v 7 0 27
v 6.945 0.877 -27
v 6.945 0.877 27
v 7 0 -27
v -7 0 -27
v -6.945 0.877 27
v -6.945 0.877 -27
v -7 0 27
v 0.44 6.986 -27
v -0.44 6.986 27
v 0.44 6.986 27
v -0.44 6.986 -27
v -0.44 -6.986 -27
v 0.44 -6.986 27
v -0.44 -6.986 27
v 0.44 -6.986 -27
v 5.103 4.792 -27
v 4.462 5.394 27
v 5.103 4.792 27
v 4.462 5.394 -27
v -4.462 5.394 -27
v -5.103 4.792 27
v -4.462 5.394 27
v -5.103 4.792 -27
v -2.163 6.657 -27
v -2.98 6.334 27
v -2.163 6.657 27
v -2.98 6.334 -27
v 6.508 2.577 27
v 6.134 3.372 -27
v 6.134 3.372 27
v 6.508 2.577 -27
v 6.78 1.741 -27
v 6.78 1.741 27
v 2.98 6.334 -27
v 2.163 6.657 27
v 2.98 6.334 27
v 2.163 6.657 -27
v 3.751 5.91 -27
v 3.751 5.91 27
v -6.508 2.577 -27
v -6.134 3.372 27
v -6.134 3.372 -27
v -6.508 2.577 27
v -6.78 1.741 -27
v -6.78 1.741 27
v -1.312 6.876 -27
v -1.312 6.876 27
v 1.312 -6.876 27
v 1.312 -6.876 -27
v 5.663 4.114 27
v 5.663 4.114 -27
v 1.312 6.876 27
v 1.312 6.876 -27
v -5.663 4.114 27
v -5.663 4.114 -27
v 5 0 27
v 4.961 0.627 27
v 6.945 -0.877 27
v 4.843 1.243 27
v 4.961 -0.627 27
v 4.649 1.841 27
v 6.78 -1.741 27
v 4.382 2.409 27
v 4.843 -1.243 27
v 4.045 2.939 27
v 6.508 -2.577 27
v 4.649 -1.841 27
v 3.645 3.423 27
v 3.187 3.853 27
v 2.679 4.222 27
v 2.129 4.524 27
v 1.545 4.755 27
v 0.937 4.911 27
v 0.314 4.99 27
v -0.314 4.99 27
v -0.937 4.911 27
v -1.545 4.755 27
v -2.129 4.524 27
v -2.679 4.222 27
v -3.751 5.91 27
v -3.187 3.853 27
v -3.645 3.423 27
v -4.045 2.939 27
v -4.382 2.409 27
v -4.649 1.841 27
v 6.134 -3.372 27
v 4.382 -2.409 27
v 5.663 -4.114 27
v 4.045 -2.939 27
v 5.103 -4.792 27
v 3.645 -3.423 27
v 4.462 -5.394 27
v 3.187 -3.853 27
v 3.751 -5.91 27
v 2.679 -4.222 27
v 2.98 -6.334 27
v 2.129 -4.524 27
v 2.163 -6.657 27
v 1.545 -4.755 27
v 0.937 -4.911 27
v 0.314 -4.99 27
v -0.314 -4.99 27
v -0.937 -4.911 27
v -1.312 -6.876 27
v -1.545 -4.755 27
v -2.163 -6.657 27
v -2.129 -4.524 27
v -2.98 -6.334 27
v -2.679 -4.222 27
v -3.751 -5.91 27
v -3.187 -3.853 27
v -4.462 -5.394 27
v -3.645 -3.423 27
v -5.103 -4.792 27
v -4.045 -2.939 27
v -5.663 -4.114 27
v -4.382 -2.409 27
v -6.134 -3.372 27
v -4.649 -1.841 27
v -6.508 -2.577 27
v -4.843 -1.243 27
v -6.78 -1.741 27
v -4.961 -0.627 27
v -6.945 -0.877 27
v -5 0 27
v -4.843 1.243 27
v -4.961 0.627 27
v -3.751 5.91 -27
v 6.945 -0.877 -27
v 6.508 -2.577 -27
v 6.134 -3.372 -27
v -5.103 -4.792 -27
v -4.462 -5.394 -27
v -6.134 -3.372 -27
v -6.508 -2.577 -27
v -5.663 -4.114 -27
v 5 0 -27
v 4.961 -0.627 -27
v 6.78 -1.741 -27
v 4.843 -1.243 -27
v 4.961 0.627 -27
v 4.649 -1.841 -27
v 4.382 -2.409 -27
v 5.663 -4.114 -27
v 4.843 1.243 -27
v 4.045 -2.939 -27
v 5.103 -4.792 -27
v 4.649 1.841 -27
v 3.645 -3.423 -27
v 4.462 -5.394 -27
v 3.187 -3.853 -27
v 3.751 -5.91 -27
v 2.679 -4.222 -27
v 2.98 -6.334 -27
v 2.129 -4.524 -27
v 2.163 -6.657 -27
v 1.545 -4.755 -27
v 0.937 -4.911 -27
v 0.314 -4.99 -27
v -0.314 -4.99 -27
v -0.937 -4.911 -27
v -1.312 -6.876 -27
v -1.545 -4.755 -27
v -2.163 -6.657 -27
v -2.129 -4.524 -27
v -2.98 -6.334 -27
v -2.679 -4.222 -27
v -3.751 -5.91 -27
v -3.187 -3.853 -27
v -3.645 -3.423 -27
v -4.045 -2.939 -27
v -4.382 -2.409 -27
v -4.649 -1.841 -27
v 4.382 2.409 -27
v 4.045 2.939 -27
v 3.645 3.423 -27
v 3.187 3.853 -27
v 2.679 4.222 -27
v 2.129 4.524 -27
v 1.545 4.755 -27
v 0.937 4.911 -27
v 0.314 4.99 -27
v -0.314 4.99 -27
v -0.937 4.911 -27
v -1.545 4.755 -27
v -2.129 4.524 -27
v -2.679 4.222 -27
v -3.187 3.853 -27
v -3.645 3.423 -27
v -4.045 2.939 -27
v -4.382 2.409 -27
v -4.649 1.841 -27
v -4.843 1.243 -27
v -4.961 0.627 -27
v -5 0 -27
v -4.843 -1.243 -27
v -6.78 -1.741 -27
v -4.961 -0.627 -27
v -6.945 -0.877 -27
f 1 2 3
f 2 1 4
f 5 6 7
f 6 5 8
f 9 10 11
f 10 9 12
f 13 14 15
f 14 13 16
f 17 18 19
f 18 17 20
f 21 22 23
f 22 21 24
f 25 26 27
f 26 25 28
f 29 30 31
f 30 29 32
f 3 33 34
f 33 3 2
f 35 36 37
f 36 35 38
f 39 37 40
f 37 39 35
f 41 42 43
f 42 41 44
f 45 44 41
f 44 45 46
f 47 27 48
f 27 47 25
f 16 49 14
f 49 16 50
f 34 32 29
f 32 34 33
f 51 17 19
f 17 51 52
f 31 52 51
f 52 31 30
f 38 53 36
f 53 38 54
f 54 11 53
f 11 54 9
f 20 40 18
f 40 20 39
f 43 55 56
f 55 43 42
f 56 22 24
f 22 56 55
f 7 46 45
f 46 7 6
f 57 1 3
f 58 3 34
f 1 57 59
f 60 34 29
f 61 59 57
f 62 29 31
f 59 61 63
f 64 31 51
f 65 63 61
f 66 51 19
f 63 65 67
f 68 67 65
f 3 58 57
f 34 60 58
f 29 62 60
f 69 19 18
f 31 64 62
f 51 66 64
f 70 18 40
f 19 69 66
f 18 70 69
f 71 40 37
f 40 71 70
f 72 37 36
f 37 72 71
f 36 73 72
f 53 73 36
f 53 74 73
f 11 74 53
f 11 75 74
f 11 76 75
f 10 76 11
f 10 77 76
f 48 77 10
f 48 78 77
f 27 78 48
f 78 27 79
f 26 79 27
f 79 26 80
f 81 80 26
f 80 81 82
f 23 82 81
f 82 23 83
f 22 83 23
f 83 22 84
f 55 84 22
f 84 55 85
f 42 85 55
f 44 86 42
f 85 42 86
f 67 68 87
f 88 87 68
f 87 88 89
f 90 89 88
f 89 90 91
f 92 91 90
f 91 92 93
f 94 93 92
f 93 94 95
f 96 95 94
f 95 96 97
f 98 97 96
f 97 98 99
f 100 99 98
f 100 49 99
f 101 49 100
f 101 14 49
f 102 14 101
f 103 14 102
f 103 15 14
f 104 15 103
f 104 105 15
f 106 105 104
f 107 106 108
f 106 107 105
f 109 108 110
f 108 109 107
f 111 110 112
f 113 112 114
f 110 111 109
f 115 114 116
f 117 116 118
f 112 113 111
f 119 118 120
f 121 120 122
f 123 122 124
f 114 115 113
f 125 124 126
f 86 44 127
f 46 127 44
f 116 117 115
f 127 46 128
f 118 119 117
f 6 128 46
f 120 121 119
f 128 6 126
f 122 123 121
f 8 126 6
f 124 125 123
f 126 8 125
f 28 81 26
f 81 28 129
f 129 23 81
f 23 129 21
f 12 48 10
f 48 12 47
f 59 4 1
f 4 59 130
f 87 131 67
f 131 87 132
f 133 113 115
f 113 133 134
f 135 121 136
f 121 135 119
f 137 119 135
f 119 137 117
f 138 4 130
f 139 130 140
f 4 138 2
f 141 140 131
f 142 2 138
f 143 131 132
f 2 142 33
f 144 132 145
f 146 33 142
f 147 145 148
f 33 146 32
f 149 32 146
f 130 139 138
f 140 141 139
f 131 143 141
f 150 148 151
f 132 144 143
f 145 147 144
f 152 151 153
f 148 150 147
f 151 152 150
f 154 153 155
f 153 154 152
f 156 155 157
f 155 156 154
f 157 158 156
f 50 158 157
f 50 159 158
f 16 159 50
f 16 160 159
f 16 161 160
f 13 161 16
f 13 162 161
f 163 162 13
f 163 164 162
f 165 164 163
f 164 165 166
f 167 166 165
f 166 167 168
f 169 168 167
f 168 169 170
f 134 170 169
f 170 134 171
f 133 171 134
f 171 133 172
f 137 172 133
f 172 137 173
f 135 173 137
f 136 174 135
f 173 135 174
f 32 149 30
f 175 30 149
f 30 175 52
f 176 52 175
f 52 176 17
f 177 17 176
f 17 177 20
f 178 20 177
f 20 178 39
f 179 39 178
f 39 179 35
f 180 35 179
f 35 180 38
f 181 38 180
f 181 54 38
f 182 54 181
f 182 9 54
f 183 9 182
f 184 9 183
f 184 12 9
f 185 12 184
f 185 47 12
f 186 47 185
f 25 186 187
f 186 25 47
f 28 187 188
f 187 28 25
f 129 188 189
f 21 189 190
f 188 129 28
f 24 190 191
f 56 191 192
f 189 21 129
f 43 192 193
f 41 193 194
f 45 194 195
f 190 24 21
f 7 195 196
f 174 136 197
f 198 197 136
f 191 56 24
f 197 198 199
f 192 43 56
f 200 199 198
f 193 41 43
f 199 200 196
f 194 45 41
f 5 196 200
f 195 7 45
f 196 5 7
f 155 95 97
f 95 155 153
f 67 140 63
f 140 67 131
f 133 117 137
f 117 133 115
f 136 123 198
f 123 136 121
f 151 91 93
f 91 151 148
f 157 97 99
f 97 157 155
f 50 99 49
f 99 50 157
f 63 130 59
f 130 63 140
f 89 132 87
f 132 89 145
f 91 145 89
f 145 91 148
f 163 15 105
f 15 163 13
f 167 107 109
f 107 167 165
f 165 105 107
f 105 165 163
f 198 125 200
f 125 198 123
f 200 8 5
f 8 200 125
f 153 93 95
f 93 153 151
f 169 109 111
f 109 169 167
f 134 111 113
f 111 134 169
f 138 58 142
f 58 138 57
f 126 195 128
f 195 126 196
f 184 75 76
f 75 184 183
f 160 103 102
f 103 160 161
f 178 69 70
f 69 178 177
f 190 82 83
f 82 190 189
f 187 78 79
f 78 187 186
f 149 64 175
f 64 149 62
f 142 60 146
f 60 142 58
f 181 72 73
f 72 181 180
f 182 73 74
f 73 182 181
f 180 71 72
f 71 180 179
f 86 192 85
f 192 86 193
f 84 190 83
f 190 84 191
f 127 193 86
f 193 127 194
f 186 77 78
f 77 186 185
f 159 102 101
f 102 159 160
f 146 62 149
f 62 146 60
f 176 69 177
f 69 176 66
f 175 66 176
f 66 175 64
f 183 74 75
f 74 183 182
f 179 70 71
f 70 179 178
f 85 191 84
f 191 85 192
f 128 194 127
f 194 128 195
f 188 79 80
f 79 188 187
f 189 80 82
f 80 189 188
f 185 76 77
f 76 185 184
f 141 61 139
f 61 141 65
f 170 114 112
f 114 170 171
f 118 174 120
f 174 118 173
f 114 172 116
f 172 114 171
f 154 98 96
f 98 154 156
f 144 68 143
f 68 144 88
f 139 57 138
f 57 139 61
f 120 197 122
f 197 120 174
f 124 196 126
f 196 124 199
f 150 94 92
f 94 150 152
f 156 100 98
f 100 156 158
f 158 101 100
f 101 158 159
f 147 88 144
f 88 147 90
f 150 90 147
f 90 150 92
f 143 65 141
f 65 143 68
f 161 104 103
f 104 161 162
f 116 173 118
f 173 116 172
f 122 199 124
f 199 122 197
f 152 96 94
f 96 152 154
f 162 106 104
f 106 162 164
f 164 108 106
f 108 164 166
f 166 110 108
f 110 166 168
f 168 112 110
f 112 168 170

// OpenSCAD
$fn = 50;


difference() {
	union() {
		translate(v = [0, 0, -27.0000000000]) {
			cylinder(h = 54, r = 7.0000000000);
		}
	}
	union() {
		translate(v = [0, 0, -100.0000000000]) {
			cylinder(h = 200, r = 5);
		}
	}
}
